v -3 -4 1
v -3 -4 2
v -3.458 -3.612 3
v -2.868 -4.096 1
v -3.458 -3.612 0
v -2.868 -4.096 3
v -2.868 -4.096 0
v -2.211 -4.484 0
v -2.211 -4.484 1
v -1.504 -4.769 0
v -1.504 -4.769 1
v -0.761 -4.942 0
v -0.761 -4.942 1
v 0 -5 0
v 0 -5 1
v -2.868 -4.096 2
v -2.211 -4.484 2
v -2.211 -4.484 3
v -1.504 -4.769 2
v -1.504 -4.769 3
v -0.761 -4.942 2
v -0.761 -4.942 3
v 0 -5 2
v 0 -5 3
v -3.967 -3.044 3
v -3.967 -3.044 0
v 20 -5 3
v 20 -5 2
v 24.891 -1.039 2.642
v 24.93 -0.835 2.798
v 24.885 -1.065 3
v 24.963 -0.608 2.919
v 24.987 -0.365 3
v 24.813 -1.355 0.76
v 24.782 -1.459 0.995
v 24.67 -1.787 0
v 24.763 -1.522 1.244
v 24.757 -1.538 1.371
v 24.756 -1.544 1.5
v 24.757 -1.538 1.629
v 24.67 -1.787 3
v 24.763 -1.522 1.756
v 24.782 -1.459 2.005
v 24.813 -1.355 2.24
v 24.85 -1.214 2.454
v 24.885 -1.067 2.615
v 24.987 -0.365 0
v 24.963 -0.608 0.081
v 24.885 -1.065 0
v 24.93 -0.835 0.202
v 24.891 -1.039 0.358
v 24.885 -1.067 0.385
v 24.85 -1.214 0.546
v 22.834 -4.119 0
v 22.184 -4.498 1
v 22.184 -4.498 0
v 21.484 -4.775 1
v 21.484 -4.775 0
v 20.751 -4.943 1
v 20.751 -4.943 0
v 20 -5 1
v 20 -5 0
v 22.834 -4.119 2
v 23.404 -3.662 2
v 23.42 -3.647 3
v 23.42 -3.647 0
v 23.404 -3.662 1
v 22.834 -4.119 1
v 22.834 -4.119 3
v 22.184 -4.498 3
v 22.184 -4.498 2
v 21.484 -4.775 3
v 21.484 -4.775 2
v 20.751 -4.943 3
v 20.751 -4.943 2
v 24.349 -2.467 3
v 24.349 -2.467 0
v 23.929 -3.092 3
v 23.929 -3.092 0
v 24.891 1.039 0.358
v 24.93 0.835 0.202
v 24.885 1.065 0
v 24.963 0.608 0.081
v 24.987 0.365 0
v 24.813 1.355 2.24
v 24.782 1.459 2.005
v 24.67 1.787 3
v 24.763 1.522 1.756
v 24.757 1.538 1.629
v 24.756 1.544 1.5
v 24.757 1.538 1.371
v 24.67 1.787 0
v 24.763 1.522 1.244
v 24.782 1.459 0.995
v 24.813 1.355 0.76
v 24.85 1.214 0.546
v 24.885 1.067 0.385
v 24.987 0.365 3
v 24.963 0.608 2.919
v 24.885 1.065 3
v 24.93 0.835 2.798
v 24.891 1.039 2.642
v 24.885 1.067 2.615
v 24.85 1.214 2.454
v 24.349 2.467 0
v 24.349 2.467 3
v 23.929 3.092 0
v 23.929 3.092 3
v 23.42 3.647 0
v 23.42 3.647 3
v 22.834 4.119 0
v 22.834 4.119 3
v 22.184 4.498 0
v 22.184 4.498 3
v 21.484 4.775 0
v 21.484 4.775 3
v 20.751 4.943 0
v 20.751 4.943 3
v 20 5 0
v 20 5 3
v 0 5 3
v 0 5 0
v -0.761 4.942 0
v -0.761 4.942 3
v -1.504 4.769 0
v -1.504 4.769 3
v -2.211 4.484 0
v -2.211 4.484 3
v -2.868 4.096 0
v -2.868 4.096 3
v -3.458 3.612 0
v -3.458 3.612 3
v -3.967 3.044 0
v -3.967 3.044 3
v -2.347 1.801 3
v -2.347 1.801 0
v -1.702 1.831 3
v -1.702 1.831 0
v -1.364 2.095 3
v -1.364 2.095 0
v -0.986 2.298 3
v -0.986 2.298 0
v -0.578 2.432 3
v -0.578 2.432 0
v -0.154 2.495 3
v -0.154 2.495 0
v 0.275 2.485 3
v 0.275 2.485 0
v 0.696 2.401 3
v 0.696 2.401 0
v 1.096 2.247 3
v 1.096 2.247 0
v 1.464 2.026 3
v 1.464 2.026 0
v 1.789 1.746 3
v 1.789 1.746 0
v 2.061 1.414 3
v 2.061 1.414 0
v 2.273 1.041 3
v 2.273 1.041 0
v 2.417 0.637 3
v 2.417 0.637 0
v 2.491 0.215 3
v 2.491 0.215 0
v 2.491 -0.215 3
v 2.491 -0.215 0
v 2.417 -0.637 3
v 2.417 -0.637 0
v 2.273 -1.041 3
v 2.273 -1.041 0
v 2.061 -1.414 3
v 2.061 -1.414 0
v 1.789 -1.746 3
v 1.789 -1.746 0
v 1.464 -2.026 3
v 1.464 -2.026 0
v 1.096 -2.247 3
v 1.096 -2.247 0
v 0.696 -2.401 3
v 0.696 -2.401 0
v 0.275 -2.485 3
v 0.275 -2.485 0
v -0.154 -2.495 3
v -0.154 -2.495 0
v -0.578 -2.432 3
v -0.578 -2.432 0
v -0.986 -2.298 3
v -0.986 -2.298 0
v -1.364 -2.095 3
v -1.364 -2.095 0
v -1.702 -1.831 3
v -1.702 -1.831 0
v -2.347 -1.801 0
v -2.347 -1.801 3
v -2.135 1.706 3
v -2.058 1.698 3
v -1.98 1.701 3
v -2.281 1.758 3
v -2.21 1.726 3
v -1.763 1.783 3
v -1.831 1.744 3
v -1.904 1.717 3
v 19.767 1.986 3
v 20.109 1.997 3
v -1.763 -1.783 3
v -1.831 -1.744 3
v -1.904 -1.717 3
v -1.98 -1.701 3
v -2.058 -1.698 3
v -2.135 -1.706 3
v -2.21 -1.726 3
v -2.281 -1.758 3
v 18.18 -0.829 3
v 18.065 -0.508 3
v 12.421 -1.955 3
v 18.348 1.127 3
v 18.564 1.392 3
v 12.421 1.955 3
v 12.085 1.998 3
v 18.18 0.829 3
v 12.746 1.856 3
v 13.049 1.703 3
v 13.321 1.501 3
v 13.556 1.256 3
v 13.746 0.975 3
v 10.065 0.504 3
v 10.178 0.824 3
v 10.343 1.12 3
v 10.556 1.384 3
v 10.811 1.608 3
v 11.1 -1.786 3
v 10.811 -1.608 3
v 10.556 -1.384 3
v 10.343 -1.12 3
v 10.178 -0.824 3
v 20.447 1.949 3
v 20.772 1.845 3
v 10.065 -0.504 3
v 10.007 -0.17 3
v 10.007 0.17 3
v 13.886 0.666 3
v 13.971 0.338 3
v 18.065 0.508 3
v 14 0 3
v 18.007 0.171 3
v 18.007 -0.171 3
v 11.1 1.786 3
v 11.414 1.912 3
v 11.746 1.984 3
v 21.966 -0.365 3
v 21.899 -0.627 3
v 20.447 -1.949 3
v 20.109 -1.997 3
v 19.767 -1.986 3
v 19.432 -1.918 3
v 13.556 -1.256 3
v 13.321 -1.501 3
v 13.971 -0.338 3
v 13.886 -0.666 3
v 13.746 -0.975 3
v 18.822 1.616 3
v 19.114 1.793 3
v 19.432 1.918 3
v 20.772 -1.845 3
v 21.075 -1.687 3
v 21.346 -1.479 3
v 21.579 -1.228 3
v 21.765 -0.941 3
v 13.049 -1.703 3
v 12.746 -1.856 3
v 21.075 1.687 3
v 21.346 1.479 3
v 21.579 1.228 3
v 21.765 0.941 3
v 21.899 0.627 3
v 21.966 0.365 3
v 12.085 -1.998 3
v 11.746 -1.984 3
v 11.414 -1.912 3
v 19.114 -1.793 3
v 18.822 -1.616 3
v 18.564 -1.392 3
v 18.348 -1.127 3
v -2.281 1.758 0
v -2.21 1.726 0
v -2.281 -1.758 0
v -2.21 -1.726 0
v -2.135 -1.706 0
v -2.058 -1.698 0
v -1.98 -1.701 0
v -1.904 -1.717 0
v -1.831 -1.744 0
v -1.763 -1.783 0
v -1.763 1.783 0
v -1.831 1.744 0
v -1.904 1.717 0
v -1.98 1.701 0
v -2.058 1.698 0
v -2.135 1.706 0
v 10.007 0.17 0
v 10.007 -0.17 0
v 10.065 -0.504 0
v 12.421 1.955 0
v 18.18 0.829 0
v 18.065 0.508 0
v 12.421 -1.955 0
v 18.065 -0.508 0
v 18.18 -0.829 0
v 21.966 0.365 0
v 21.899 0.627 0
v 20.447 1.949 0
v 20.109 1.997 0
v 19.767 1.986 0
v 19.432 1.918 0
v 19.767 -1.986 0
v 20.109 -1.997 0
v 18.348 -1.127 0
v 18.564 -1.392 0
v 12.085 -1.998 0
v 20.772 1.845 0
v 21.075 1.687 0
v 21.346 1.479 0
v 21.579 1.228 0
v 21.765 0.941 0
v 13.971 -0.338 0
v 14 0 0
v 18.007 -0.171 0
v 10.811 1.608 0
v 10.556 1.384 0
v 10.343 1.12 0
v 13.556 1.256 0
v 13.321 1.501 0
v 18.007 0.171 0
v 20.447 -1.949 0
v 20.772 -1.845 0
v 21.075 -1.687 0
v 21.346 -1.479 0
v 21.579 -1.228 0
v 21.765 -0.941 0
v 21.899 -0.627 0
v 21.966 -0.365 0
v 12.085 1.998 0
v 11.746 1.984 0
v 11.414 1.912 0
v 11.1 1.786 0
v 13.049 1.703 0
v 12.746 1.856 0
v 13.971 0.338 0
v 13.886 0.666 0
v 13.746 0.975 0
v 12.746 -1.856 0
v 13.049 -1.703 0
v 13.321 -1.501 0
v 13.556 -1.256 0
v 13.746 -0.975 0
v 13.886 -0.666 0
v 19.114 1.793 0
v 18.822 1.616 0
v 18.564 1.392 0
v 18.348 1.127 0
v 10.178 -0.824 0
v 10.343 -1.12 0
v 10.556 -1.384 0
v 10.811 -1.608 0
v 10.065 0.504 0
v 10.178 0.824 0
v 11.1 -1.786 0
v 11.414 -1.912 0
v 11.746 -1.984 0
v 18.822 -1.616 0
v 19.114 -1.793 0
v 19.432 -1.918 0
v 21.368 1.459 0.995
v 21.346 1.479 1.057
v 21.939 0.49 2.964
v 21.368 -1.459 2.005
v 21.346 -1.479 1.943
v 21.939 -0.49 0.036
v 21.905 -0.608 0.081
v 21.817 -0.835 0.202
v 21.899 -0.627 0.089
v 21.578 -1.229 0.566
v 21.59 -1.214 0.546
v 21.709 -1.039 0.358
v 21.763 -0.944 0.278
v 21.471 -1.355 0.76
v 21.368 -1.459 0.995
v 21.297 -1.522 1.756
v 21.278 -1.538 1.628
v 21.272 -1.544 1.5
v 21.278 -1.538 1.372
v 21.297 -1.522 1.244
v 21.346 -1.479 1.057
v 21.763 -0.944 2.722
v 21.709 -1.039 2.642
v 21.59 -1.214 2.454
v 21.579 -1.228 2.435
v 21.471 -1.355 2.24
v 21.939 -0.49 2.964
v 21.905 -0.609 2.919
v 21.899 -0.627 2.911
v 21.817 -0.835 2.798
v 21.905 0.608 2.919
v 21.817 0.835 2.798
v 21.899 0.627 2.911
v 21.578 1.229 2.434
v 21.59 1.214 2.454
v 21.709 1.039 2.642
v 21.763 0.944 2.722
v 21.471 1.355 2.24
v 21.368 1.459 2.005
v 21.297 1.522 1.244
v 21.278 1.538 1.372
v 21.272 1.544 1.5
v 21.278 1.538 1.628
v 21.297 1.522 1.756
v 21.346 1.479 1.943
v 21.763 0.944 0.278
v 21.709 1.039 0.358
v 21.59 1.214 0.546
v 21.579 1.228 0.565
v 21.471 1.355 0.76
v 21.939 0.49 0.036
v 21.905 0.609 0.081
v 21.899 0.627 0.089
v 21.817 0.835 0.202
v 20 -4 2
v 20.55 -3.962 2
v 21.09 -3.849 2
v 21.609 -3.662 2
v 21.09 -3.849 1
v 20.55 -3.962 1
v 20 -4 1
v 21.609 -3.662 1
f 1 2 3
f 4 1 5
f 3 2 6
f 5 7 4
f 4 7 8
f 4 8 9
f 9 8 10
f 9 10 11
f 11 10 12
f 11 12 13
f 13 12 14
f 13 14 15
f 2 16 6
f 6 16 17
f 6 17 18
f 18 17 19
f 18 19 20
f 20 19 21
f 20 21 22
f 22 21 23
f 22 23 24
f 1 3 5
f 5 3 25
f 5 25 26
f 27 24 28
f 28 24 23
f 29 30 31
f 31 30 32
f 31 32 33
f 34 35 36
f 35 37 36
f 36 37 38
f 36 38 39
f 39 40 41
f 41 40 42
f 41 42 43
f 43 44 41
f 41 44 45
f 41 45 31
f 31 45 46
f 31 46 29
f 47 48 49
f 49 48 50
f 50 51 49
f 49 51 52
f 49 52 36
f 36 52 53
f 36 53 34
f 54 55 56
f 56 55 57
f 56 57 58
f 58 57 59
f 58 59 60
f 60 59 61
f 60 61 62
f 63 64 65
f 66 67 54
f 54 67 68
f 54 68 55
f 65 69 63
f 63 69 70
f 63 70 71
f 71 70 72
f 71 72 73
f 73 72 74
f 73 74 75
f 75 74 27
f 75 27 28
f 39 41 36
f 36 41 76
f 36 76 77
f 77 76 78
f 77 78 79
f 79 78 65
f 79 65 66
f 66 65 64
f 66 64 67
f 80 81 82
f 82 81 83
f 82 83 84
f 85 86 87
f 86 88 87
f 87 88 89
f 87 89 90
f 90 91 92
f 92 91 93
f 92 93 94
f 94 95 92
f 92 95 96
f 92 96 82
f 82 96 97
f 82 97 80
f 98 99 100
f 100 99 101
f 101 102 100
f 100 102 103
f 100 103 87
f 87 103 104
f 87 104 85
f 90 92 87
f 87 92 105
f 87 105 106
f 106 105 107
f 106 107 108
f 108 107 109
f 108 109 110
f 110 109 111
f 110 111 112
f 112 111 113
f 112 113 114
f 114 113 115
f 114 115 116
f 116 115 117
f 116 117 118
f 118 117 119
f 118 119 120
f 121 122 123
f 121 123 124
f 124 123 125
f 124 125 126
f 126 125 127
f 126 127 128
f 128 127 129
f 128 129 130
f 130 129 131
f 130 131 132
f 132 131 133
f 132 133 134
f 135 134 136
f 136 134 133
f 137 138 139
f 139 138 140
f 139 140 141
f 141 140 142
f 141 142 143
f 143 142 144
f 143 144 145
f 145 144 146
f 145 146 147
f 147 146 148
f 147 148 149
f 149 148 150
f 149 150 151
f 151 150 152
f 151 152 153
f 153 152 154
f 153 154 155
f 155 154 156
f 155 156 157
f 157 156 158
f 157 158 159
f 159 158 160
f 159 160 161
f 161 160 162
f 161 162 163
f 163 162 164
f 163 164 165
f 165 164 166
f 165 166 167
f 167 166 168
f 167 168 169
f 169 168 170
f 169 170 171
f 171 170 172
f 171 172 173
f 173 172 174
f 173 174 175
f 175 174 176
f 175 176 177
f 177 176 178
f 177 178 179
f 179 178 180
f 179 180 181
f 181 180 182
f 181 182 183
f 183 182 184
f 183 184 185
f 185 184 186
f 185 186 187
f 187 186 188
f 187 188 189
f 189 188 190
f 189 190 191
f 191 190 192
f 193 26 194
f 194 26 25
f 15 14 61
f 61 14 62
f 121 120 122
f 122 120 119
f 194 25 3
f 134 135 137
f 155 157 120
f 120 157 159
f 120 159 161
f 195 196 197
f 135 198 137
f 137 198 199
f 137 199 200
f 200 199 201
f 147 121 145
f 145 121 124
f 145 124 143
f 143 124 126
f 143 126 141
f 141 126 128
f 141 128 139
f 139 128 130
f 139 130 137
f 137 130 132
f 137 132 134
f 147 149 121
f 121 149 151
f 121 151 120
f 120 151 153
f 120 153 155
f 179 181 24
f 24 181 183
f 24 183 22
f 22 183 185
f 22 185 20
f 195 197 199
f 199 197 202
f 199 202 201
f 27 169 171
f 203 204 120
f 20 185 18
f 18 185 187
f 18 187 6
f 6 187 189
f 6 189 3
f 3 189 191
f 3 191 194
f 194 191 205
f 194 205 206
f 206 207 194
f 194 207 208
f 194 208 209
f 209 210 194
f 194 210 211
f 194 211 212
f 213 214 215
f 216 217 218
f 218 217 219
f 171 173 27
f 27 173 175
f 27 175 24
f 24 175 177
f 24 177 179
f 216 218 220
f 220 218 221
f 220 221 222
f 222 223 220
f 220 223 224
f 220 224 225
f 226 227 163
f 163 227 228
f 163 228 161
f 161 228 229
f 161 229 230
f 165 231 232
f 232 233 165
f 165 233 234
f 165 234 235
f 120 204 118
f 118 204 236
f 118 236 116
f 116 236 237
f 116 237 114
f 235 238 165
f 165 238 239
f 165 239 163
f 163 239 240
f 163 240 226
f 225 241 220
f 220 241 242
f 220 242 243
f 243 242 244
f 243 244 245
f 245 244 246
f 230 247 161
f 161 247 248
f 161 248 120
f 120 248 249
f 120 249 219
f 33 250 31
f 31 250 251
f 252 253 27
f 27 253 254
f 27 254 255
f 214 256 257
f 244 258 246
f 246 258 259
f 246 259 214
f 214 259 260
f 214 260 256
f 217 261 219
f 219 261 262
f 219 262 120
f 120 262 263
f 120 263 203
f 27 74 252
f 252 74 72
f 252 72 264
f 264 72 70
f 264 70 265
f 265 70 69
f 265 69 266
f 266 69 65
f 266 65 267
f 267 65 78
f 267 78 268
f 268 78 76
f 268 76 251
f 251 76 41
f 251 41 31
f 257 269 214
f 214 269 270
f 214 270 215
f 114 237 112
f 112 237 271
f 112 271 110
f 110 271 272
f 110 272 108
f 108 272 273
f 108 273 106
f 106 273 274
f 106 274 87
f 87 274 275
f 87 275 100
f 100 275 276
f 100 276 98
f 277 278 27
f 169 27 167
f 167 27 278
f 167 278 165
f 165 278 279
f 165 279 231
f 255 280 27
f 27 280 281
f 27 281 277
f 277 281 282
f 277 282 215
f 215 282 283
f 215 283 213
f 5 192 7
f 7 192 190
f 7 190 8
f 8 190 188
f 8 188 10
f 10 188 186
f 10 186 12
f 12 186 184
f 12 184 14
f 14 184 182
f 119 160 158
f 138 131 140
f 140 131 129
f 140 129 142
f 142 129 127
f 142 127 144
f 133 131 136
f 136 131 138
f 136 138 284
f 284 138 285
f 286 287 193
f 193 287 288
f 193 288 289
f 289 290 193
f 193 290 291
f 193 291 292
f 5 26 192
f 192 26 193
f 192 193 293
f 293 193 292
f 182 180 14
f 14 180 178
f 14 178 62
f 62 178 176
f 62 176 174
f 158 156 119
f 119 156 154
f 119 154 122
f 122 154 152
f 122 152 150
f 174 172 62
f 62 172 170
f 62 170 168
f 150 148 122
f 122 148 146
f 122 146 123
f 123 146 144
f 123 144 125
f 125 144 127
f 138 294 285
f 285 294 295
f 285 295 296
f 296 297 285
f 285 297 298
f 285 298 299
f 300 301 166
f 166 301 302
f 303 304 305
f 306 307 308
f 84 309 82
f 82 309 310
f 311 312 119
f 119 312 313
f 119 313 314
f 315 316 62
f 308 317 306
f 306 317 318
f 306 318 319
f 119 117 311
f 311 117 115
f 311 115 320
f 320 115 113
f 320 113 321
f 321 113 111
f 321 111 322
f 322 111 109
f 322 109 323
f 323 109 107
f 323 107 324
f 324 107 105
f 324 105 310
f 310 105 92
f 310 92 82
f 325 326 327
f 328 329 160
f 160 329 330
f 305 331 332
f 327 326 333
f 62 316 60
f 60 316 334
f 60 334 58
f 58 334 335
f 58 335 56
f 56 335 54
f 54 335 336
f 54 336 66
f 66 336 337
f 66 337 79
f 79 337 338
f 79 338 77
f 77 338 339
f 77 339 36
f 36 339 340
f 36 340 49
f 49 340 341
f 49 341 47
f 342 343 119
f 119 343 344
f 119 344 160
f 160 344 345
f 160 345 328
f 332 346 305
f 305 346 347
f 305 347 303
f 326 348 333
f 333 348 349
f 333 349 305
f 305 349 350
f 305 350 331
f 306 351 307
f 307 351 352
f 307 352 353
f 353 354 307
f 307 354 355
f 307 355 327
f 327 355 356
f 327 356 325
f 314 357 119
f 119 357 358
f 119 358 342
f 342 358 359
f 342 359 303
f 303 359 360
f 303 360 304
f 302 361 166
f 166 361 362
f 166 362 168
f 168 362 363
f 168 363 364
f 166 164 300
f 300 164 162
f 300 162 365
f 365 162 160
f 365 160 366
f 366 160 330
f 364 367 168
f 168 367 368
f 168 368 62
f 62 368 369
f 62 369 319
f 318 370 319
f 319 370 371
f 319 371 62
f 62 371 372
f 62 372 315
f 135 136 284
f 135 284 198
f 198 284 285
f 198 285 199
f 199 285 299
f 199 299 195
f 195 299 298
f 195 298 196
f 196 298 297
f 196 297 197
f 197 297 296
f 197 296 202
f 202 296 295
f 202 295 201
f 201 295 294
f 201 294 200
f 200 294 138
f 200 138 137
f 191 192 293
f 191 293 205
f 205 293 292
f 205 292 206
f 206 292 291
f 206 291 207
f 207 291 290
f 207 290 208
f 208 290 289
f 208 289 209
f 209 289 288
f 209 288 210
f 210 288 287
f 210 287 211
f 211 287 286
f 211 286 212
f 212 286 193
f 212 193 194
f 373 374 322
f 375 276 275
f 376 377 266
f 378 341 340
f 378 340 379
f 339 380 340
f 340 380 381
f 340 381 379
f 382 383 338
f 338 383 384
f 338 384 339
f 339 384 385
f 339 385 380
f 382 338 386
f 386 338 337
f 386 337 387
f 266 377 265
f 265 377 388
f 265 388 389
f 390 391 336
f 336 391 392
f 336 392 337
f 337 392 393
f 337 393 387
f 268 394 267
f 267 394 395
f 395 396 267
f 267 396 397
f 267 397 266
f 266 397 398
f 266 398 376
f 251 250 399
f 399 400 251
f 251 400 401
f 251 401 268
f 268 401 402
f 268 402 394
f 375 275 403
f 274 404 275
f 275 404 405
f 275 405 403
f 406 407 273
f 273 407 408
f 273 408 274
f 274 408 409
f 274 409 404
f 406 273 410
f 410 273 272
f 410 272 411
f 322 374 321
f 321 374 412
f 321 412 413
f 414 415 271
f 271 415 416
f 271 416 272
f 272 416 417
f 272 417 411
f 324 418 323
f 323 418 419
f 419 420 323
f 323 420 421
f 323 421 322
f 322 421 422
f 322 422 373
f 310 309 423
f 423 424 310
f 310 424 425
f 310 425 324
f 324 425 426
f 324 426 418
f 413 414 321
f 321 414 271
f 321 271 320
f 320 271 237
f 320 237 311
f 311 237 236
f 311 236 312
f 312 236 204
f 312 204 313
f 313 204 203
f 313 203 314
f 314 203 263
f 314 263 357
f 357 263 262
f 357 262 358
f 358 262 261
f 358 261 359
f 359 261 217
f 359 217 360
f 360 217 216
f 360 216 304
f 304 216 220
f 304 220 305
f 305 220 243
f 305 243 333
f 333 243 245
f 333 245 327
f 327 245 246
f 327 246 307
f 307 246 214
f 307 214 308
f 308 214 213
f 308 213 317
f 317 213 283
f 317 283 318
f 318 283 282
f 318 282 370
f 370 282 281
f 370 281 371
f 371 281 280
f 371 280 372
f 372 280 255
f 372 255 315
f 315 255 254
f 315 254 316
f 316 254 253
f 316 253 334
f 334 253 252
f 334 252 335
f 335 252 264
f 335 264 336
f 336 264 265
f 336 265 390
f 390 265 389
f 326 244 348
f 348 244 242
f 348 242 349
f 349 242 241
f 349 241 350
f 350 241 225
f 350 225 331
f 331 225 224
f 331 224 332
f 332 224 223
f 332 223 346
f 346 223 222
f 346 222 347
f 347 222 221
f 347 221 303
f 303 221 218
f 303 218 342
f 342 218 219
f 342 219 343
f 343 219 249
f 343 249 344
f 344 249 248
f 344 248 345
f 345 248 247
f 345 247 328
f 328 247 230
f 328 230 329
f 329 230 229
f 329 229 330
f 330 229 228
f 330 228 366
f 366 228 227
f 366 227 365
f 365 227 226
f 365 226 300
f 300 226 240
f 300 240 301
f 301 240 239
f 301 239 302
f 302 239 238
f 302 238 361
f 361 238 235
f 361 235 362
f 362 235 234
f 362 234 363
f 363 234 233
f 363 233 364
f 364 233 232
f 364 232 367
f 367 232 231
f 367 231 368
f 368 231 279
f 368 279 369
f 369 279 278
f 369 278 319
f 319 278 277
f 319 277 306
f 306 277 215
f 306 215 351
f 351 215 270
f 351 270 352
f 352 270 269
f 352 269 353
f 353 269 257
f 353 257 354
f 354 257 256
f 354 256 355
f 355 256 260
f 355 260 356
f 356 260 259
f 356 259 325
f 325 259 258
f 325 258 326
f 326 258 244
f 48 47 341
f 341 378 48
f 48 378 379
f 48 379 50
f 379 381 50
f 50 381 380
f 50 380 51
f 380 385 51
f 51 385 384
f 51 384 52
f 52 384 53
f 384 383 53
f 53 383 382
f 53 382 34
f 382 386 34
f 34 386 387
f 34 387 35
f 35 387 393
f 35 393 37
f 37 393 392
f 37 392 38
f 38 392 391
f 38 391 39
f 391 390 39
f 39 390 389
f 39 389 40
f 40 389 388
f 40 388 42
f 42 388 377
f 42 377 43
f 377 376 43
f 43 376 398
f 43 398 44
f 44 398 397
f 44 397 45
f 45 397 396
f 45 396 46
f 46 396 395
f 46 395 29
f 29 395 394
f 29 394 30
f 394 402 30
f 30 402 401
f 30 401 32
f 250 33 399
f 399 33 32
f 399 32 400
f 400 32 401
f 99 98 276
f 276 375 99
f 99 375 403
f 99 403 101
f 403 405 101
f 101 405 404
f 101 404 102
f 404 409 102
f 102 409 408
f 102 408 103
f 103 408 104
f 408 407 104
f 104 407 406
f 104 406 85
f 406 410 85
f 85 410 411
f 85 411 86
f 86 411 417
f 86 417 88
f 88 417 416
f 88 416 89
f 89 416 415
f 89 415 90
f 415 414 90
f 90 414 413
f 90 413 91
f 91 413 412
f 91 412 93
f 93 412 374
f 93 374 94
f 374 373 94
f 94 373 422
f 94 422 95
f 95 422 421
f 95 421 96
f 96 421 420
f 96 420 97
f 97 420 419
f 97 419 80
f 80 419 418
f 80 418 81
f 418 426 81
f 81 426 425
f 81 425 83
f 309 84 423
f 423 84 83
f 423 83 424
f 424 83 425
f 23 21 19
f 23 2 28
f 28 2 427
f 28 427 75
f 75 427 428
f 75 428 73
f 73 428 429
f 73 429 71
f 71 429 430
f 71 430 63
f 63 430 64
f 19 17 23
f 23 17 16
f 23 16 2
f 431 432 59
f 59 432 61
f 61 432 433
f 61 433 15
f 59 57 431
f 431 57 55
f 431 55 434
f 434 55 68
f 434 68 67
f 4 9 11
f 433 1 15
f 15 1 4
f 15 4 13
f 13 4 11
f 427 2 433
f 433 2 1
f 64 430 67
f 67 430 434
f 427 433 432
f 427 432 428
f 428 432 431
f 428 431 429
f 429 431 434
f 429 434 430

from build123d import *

# Parameters (mm, degrees)
BOSS_EXTRUDE1_DEPTH = 3
FILLET1_R           = 0.5
SKETCH2_R           = 2
CUT_EXTRUDE1_DEPTH  = 10
SKETCH3_R           = 2
CUT_EXTRUDE2_DEPTH  = 3
CUT_EXTRUDE3_START  = 50
SKETCH4_R           = 1.54375
CUT_EXTRUDE3_DEPTH  = 30
CUT_EXTRUDE4_START  = -1.5
CUT_EXTRUDE4_DEPTH  = 0.5


with BuildPart() as part:
    # Sketch1 → Boss-Extrude1 (new body)
    with BuildSketch(Plane.XY):
        with BuildLine():
            Line((-3.966766701, 3.043807145), (-1.983383351, 1.521903573))
            ThreePointArc((-1.983383351, 1.521903573), (2.5, 0), (-1.983383351, -1.521903573))
            Line((-1.983383351, -1.521903573), (-3.966766701, -3.043807145))
            ThreePointArc((-3.966766701, -3.043807145), (-2.211443451, -4.484363708), (0, -5))
            Line((0, -5), (20, -5))
            ThreePointArc((20, -5), (25, 0), (20, 5))
            Line((20, 5), (0, 5))
            ThreePointArc((0, 5), (-2.211443451, 4.484363708), (-3.966766701, 3.043807145))
        make_face()
    extrude(amount=BOSS_EXTRUDE1_DEPTH)

    # Fillet1
    fillet1_edges = [part.edges().sort_by_distance(p)[0] for p in [
        (-1.983383351, -1.521903573, 1.5),
        (-1.983383351, 1.521903573, 1.5),
    ]]
    fillet(fillet1_edges, radius=FILLET1_R)

    # Sketch2 → Cut-Extrude1 (cut)
    with BuildSketch(Plane.XY.offset(3)):
        with Locations((20, 0)):
            Circle(SKETCH2_R)
    extrude(amount=-CUT_EXTRUDE1_DEPTH, mode=Mode.SUBTRACT)

    # Sketch3 → Cut-Extrude2 (cut)
    with BuildSketch(Plane.XY.offset(3)):
        with Locations((12, 0)):
            Circle(SKETCH3_R)
    extrude(amount=-CUT_EXTRUDE2_DEPTH, mode=Mode.SUBTRACT)

    # Sketch4 → Cut-Extrude3 (cut)
    with BuildSketch(Plane(origin=(0, 0, 0), x_dir=(0, 0, -1), z_dir=(1, 0, 0)).offset(CUT_EXTRUDE3_START)):
        with Locations((-1.5, 0)):
            Circle(SKETCH4_R)
    extrude(amount=-CUT_EXTRUDE3_DEPTH, mode=Mode.SUBTRACT)

    # Sketch5 → Cut-Extrude4 (cut, symmetric)
    with BuildSketch(Plane(origin=(0, 0, 0), x_dir=(-1, 0, 0), z_dir=(0, 0, -1)).offset(CUT_EXTRUDE4_START)):
        with BuildLine():
            Line((-21.608635668, -3.66227952), (-23.404072372, -3.66227952))
            ThreePointArc((-23.404072372, -3.66227952), (-21.828743065, -4.653568394), (-20, -5))
            Line((-20, -5), (0, -5))
            Line((0, -5), (3, -5))
            Line((3, -5), (3, -4))
            Line((3, -4), (-20, -4))
            ThreePointArc((-20, -4), (-20.821852152, -3.914659505), (-21.608635668, -3.66227952))
        make_face()
    extrude(amount=CUT_EXTRUDE4_DEPTH, both=True, mode=Mode.SUBTRACT)


solid = part.part
